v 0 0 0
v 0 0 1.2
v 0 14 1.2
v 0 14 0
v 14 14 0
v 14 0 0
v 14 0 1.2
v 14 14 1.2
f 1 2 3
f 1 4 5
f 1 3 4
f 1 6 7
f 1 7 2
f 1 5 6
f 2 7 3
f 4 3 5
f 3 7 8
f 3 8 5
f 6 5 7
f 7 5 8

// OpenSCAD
/* Warning, this is a very basic generator with a lot of approximation 
input data : [TFBGA, 4FB, 14x14x1.2mm, 233, , A, C04-21501A]
generated by com.zoubworld.electronics.cad.model3d.Basic
Date : Sun Feb 15 10:50:49 CET 2026
*/

//body
color("black")
translate([0,0,0])
cube([14.0,14.0,1.2], center=false);
